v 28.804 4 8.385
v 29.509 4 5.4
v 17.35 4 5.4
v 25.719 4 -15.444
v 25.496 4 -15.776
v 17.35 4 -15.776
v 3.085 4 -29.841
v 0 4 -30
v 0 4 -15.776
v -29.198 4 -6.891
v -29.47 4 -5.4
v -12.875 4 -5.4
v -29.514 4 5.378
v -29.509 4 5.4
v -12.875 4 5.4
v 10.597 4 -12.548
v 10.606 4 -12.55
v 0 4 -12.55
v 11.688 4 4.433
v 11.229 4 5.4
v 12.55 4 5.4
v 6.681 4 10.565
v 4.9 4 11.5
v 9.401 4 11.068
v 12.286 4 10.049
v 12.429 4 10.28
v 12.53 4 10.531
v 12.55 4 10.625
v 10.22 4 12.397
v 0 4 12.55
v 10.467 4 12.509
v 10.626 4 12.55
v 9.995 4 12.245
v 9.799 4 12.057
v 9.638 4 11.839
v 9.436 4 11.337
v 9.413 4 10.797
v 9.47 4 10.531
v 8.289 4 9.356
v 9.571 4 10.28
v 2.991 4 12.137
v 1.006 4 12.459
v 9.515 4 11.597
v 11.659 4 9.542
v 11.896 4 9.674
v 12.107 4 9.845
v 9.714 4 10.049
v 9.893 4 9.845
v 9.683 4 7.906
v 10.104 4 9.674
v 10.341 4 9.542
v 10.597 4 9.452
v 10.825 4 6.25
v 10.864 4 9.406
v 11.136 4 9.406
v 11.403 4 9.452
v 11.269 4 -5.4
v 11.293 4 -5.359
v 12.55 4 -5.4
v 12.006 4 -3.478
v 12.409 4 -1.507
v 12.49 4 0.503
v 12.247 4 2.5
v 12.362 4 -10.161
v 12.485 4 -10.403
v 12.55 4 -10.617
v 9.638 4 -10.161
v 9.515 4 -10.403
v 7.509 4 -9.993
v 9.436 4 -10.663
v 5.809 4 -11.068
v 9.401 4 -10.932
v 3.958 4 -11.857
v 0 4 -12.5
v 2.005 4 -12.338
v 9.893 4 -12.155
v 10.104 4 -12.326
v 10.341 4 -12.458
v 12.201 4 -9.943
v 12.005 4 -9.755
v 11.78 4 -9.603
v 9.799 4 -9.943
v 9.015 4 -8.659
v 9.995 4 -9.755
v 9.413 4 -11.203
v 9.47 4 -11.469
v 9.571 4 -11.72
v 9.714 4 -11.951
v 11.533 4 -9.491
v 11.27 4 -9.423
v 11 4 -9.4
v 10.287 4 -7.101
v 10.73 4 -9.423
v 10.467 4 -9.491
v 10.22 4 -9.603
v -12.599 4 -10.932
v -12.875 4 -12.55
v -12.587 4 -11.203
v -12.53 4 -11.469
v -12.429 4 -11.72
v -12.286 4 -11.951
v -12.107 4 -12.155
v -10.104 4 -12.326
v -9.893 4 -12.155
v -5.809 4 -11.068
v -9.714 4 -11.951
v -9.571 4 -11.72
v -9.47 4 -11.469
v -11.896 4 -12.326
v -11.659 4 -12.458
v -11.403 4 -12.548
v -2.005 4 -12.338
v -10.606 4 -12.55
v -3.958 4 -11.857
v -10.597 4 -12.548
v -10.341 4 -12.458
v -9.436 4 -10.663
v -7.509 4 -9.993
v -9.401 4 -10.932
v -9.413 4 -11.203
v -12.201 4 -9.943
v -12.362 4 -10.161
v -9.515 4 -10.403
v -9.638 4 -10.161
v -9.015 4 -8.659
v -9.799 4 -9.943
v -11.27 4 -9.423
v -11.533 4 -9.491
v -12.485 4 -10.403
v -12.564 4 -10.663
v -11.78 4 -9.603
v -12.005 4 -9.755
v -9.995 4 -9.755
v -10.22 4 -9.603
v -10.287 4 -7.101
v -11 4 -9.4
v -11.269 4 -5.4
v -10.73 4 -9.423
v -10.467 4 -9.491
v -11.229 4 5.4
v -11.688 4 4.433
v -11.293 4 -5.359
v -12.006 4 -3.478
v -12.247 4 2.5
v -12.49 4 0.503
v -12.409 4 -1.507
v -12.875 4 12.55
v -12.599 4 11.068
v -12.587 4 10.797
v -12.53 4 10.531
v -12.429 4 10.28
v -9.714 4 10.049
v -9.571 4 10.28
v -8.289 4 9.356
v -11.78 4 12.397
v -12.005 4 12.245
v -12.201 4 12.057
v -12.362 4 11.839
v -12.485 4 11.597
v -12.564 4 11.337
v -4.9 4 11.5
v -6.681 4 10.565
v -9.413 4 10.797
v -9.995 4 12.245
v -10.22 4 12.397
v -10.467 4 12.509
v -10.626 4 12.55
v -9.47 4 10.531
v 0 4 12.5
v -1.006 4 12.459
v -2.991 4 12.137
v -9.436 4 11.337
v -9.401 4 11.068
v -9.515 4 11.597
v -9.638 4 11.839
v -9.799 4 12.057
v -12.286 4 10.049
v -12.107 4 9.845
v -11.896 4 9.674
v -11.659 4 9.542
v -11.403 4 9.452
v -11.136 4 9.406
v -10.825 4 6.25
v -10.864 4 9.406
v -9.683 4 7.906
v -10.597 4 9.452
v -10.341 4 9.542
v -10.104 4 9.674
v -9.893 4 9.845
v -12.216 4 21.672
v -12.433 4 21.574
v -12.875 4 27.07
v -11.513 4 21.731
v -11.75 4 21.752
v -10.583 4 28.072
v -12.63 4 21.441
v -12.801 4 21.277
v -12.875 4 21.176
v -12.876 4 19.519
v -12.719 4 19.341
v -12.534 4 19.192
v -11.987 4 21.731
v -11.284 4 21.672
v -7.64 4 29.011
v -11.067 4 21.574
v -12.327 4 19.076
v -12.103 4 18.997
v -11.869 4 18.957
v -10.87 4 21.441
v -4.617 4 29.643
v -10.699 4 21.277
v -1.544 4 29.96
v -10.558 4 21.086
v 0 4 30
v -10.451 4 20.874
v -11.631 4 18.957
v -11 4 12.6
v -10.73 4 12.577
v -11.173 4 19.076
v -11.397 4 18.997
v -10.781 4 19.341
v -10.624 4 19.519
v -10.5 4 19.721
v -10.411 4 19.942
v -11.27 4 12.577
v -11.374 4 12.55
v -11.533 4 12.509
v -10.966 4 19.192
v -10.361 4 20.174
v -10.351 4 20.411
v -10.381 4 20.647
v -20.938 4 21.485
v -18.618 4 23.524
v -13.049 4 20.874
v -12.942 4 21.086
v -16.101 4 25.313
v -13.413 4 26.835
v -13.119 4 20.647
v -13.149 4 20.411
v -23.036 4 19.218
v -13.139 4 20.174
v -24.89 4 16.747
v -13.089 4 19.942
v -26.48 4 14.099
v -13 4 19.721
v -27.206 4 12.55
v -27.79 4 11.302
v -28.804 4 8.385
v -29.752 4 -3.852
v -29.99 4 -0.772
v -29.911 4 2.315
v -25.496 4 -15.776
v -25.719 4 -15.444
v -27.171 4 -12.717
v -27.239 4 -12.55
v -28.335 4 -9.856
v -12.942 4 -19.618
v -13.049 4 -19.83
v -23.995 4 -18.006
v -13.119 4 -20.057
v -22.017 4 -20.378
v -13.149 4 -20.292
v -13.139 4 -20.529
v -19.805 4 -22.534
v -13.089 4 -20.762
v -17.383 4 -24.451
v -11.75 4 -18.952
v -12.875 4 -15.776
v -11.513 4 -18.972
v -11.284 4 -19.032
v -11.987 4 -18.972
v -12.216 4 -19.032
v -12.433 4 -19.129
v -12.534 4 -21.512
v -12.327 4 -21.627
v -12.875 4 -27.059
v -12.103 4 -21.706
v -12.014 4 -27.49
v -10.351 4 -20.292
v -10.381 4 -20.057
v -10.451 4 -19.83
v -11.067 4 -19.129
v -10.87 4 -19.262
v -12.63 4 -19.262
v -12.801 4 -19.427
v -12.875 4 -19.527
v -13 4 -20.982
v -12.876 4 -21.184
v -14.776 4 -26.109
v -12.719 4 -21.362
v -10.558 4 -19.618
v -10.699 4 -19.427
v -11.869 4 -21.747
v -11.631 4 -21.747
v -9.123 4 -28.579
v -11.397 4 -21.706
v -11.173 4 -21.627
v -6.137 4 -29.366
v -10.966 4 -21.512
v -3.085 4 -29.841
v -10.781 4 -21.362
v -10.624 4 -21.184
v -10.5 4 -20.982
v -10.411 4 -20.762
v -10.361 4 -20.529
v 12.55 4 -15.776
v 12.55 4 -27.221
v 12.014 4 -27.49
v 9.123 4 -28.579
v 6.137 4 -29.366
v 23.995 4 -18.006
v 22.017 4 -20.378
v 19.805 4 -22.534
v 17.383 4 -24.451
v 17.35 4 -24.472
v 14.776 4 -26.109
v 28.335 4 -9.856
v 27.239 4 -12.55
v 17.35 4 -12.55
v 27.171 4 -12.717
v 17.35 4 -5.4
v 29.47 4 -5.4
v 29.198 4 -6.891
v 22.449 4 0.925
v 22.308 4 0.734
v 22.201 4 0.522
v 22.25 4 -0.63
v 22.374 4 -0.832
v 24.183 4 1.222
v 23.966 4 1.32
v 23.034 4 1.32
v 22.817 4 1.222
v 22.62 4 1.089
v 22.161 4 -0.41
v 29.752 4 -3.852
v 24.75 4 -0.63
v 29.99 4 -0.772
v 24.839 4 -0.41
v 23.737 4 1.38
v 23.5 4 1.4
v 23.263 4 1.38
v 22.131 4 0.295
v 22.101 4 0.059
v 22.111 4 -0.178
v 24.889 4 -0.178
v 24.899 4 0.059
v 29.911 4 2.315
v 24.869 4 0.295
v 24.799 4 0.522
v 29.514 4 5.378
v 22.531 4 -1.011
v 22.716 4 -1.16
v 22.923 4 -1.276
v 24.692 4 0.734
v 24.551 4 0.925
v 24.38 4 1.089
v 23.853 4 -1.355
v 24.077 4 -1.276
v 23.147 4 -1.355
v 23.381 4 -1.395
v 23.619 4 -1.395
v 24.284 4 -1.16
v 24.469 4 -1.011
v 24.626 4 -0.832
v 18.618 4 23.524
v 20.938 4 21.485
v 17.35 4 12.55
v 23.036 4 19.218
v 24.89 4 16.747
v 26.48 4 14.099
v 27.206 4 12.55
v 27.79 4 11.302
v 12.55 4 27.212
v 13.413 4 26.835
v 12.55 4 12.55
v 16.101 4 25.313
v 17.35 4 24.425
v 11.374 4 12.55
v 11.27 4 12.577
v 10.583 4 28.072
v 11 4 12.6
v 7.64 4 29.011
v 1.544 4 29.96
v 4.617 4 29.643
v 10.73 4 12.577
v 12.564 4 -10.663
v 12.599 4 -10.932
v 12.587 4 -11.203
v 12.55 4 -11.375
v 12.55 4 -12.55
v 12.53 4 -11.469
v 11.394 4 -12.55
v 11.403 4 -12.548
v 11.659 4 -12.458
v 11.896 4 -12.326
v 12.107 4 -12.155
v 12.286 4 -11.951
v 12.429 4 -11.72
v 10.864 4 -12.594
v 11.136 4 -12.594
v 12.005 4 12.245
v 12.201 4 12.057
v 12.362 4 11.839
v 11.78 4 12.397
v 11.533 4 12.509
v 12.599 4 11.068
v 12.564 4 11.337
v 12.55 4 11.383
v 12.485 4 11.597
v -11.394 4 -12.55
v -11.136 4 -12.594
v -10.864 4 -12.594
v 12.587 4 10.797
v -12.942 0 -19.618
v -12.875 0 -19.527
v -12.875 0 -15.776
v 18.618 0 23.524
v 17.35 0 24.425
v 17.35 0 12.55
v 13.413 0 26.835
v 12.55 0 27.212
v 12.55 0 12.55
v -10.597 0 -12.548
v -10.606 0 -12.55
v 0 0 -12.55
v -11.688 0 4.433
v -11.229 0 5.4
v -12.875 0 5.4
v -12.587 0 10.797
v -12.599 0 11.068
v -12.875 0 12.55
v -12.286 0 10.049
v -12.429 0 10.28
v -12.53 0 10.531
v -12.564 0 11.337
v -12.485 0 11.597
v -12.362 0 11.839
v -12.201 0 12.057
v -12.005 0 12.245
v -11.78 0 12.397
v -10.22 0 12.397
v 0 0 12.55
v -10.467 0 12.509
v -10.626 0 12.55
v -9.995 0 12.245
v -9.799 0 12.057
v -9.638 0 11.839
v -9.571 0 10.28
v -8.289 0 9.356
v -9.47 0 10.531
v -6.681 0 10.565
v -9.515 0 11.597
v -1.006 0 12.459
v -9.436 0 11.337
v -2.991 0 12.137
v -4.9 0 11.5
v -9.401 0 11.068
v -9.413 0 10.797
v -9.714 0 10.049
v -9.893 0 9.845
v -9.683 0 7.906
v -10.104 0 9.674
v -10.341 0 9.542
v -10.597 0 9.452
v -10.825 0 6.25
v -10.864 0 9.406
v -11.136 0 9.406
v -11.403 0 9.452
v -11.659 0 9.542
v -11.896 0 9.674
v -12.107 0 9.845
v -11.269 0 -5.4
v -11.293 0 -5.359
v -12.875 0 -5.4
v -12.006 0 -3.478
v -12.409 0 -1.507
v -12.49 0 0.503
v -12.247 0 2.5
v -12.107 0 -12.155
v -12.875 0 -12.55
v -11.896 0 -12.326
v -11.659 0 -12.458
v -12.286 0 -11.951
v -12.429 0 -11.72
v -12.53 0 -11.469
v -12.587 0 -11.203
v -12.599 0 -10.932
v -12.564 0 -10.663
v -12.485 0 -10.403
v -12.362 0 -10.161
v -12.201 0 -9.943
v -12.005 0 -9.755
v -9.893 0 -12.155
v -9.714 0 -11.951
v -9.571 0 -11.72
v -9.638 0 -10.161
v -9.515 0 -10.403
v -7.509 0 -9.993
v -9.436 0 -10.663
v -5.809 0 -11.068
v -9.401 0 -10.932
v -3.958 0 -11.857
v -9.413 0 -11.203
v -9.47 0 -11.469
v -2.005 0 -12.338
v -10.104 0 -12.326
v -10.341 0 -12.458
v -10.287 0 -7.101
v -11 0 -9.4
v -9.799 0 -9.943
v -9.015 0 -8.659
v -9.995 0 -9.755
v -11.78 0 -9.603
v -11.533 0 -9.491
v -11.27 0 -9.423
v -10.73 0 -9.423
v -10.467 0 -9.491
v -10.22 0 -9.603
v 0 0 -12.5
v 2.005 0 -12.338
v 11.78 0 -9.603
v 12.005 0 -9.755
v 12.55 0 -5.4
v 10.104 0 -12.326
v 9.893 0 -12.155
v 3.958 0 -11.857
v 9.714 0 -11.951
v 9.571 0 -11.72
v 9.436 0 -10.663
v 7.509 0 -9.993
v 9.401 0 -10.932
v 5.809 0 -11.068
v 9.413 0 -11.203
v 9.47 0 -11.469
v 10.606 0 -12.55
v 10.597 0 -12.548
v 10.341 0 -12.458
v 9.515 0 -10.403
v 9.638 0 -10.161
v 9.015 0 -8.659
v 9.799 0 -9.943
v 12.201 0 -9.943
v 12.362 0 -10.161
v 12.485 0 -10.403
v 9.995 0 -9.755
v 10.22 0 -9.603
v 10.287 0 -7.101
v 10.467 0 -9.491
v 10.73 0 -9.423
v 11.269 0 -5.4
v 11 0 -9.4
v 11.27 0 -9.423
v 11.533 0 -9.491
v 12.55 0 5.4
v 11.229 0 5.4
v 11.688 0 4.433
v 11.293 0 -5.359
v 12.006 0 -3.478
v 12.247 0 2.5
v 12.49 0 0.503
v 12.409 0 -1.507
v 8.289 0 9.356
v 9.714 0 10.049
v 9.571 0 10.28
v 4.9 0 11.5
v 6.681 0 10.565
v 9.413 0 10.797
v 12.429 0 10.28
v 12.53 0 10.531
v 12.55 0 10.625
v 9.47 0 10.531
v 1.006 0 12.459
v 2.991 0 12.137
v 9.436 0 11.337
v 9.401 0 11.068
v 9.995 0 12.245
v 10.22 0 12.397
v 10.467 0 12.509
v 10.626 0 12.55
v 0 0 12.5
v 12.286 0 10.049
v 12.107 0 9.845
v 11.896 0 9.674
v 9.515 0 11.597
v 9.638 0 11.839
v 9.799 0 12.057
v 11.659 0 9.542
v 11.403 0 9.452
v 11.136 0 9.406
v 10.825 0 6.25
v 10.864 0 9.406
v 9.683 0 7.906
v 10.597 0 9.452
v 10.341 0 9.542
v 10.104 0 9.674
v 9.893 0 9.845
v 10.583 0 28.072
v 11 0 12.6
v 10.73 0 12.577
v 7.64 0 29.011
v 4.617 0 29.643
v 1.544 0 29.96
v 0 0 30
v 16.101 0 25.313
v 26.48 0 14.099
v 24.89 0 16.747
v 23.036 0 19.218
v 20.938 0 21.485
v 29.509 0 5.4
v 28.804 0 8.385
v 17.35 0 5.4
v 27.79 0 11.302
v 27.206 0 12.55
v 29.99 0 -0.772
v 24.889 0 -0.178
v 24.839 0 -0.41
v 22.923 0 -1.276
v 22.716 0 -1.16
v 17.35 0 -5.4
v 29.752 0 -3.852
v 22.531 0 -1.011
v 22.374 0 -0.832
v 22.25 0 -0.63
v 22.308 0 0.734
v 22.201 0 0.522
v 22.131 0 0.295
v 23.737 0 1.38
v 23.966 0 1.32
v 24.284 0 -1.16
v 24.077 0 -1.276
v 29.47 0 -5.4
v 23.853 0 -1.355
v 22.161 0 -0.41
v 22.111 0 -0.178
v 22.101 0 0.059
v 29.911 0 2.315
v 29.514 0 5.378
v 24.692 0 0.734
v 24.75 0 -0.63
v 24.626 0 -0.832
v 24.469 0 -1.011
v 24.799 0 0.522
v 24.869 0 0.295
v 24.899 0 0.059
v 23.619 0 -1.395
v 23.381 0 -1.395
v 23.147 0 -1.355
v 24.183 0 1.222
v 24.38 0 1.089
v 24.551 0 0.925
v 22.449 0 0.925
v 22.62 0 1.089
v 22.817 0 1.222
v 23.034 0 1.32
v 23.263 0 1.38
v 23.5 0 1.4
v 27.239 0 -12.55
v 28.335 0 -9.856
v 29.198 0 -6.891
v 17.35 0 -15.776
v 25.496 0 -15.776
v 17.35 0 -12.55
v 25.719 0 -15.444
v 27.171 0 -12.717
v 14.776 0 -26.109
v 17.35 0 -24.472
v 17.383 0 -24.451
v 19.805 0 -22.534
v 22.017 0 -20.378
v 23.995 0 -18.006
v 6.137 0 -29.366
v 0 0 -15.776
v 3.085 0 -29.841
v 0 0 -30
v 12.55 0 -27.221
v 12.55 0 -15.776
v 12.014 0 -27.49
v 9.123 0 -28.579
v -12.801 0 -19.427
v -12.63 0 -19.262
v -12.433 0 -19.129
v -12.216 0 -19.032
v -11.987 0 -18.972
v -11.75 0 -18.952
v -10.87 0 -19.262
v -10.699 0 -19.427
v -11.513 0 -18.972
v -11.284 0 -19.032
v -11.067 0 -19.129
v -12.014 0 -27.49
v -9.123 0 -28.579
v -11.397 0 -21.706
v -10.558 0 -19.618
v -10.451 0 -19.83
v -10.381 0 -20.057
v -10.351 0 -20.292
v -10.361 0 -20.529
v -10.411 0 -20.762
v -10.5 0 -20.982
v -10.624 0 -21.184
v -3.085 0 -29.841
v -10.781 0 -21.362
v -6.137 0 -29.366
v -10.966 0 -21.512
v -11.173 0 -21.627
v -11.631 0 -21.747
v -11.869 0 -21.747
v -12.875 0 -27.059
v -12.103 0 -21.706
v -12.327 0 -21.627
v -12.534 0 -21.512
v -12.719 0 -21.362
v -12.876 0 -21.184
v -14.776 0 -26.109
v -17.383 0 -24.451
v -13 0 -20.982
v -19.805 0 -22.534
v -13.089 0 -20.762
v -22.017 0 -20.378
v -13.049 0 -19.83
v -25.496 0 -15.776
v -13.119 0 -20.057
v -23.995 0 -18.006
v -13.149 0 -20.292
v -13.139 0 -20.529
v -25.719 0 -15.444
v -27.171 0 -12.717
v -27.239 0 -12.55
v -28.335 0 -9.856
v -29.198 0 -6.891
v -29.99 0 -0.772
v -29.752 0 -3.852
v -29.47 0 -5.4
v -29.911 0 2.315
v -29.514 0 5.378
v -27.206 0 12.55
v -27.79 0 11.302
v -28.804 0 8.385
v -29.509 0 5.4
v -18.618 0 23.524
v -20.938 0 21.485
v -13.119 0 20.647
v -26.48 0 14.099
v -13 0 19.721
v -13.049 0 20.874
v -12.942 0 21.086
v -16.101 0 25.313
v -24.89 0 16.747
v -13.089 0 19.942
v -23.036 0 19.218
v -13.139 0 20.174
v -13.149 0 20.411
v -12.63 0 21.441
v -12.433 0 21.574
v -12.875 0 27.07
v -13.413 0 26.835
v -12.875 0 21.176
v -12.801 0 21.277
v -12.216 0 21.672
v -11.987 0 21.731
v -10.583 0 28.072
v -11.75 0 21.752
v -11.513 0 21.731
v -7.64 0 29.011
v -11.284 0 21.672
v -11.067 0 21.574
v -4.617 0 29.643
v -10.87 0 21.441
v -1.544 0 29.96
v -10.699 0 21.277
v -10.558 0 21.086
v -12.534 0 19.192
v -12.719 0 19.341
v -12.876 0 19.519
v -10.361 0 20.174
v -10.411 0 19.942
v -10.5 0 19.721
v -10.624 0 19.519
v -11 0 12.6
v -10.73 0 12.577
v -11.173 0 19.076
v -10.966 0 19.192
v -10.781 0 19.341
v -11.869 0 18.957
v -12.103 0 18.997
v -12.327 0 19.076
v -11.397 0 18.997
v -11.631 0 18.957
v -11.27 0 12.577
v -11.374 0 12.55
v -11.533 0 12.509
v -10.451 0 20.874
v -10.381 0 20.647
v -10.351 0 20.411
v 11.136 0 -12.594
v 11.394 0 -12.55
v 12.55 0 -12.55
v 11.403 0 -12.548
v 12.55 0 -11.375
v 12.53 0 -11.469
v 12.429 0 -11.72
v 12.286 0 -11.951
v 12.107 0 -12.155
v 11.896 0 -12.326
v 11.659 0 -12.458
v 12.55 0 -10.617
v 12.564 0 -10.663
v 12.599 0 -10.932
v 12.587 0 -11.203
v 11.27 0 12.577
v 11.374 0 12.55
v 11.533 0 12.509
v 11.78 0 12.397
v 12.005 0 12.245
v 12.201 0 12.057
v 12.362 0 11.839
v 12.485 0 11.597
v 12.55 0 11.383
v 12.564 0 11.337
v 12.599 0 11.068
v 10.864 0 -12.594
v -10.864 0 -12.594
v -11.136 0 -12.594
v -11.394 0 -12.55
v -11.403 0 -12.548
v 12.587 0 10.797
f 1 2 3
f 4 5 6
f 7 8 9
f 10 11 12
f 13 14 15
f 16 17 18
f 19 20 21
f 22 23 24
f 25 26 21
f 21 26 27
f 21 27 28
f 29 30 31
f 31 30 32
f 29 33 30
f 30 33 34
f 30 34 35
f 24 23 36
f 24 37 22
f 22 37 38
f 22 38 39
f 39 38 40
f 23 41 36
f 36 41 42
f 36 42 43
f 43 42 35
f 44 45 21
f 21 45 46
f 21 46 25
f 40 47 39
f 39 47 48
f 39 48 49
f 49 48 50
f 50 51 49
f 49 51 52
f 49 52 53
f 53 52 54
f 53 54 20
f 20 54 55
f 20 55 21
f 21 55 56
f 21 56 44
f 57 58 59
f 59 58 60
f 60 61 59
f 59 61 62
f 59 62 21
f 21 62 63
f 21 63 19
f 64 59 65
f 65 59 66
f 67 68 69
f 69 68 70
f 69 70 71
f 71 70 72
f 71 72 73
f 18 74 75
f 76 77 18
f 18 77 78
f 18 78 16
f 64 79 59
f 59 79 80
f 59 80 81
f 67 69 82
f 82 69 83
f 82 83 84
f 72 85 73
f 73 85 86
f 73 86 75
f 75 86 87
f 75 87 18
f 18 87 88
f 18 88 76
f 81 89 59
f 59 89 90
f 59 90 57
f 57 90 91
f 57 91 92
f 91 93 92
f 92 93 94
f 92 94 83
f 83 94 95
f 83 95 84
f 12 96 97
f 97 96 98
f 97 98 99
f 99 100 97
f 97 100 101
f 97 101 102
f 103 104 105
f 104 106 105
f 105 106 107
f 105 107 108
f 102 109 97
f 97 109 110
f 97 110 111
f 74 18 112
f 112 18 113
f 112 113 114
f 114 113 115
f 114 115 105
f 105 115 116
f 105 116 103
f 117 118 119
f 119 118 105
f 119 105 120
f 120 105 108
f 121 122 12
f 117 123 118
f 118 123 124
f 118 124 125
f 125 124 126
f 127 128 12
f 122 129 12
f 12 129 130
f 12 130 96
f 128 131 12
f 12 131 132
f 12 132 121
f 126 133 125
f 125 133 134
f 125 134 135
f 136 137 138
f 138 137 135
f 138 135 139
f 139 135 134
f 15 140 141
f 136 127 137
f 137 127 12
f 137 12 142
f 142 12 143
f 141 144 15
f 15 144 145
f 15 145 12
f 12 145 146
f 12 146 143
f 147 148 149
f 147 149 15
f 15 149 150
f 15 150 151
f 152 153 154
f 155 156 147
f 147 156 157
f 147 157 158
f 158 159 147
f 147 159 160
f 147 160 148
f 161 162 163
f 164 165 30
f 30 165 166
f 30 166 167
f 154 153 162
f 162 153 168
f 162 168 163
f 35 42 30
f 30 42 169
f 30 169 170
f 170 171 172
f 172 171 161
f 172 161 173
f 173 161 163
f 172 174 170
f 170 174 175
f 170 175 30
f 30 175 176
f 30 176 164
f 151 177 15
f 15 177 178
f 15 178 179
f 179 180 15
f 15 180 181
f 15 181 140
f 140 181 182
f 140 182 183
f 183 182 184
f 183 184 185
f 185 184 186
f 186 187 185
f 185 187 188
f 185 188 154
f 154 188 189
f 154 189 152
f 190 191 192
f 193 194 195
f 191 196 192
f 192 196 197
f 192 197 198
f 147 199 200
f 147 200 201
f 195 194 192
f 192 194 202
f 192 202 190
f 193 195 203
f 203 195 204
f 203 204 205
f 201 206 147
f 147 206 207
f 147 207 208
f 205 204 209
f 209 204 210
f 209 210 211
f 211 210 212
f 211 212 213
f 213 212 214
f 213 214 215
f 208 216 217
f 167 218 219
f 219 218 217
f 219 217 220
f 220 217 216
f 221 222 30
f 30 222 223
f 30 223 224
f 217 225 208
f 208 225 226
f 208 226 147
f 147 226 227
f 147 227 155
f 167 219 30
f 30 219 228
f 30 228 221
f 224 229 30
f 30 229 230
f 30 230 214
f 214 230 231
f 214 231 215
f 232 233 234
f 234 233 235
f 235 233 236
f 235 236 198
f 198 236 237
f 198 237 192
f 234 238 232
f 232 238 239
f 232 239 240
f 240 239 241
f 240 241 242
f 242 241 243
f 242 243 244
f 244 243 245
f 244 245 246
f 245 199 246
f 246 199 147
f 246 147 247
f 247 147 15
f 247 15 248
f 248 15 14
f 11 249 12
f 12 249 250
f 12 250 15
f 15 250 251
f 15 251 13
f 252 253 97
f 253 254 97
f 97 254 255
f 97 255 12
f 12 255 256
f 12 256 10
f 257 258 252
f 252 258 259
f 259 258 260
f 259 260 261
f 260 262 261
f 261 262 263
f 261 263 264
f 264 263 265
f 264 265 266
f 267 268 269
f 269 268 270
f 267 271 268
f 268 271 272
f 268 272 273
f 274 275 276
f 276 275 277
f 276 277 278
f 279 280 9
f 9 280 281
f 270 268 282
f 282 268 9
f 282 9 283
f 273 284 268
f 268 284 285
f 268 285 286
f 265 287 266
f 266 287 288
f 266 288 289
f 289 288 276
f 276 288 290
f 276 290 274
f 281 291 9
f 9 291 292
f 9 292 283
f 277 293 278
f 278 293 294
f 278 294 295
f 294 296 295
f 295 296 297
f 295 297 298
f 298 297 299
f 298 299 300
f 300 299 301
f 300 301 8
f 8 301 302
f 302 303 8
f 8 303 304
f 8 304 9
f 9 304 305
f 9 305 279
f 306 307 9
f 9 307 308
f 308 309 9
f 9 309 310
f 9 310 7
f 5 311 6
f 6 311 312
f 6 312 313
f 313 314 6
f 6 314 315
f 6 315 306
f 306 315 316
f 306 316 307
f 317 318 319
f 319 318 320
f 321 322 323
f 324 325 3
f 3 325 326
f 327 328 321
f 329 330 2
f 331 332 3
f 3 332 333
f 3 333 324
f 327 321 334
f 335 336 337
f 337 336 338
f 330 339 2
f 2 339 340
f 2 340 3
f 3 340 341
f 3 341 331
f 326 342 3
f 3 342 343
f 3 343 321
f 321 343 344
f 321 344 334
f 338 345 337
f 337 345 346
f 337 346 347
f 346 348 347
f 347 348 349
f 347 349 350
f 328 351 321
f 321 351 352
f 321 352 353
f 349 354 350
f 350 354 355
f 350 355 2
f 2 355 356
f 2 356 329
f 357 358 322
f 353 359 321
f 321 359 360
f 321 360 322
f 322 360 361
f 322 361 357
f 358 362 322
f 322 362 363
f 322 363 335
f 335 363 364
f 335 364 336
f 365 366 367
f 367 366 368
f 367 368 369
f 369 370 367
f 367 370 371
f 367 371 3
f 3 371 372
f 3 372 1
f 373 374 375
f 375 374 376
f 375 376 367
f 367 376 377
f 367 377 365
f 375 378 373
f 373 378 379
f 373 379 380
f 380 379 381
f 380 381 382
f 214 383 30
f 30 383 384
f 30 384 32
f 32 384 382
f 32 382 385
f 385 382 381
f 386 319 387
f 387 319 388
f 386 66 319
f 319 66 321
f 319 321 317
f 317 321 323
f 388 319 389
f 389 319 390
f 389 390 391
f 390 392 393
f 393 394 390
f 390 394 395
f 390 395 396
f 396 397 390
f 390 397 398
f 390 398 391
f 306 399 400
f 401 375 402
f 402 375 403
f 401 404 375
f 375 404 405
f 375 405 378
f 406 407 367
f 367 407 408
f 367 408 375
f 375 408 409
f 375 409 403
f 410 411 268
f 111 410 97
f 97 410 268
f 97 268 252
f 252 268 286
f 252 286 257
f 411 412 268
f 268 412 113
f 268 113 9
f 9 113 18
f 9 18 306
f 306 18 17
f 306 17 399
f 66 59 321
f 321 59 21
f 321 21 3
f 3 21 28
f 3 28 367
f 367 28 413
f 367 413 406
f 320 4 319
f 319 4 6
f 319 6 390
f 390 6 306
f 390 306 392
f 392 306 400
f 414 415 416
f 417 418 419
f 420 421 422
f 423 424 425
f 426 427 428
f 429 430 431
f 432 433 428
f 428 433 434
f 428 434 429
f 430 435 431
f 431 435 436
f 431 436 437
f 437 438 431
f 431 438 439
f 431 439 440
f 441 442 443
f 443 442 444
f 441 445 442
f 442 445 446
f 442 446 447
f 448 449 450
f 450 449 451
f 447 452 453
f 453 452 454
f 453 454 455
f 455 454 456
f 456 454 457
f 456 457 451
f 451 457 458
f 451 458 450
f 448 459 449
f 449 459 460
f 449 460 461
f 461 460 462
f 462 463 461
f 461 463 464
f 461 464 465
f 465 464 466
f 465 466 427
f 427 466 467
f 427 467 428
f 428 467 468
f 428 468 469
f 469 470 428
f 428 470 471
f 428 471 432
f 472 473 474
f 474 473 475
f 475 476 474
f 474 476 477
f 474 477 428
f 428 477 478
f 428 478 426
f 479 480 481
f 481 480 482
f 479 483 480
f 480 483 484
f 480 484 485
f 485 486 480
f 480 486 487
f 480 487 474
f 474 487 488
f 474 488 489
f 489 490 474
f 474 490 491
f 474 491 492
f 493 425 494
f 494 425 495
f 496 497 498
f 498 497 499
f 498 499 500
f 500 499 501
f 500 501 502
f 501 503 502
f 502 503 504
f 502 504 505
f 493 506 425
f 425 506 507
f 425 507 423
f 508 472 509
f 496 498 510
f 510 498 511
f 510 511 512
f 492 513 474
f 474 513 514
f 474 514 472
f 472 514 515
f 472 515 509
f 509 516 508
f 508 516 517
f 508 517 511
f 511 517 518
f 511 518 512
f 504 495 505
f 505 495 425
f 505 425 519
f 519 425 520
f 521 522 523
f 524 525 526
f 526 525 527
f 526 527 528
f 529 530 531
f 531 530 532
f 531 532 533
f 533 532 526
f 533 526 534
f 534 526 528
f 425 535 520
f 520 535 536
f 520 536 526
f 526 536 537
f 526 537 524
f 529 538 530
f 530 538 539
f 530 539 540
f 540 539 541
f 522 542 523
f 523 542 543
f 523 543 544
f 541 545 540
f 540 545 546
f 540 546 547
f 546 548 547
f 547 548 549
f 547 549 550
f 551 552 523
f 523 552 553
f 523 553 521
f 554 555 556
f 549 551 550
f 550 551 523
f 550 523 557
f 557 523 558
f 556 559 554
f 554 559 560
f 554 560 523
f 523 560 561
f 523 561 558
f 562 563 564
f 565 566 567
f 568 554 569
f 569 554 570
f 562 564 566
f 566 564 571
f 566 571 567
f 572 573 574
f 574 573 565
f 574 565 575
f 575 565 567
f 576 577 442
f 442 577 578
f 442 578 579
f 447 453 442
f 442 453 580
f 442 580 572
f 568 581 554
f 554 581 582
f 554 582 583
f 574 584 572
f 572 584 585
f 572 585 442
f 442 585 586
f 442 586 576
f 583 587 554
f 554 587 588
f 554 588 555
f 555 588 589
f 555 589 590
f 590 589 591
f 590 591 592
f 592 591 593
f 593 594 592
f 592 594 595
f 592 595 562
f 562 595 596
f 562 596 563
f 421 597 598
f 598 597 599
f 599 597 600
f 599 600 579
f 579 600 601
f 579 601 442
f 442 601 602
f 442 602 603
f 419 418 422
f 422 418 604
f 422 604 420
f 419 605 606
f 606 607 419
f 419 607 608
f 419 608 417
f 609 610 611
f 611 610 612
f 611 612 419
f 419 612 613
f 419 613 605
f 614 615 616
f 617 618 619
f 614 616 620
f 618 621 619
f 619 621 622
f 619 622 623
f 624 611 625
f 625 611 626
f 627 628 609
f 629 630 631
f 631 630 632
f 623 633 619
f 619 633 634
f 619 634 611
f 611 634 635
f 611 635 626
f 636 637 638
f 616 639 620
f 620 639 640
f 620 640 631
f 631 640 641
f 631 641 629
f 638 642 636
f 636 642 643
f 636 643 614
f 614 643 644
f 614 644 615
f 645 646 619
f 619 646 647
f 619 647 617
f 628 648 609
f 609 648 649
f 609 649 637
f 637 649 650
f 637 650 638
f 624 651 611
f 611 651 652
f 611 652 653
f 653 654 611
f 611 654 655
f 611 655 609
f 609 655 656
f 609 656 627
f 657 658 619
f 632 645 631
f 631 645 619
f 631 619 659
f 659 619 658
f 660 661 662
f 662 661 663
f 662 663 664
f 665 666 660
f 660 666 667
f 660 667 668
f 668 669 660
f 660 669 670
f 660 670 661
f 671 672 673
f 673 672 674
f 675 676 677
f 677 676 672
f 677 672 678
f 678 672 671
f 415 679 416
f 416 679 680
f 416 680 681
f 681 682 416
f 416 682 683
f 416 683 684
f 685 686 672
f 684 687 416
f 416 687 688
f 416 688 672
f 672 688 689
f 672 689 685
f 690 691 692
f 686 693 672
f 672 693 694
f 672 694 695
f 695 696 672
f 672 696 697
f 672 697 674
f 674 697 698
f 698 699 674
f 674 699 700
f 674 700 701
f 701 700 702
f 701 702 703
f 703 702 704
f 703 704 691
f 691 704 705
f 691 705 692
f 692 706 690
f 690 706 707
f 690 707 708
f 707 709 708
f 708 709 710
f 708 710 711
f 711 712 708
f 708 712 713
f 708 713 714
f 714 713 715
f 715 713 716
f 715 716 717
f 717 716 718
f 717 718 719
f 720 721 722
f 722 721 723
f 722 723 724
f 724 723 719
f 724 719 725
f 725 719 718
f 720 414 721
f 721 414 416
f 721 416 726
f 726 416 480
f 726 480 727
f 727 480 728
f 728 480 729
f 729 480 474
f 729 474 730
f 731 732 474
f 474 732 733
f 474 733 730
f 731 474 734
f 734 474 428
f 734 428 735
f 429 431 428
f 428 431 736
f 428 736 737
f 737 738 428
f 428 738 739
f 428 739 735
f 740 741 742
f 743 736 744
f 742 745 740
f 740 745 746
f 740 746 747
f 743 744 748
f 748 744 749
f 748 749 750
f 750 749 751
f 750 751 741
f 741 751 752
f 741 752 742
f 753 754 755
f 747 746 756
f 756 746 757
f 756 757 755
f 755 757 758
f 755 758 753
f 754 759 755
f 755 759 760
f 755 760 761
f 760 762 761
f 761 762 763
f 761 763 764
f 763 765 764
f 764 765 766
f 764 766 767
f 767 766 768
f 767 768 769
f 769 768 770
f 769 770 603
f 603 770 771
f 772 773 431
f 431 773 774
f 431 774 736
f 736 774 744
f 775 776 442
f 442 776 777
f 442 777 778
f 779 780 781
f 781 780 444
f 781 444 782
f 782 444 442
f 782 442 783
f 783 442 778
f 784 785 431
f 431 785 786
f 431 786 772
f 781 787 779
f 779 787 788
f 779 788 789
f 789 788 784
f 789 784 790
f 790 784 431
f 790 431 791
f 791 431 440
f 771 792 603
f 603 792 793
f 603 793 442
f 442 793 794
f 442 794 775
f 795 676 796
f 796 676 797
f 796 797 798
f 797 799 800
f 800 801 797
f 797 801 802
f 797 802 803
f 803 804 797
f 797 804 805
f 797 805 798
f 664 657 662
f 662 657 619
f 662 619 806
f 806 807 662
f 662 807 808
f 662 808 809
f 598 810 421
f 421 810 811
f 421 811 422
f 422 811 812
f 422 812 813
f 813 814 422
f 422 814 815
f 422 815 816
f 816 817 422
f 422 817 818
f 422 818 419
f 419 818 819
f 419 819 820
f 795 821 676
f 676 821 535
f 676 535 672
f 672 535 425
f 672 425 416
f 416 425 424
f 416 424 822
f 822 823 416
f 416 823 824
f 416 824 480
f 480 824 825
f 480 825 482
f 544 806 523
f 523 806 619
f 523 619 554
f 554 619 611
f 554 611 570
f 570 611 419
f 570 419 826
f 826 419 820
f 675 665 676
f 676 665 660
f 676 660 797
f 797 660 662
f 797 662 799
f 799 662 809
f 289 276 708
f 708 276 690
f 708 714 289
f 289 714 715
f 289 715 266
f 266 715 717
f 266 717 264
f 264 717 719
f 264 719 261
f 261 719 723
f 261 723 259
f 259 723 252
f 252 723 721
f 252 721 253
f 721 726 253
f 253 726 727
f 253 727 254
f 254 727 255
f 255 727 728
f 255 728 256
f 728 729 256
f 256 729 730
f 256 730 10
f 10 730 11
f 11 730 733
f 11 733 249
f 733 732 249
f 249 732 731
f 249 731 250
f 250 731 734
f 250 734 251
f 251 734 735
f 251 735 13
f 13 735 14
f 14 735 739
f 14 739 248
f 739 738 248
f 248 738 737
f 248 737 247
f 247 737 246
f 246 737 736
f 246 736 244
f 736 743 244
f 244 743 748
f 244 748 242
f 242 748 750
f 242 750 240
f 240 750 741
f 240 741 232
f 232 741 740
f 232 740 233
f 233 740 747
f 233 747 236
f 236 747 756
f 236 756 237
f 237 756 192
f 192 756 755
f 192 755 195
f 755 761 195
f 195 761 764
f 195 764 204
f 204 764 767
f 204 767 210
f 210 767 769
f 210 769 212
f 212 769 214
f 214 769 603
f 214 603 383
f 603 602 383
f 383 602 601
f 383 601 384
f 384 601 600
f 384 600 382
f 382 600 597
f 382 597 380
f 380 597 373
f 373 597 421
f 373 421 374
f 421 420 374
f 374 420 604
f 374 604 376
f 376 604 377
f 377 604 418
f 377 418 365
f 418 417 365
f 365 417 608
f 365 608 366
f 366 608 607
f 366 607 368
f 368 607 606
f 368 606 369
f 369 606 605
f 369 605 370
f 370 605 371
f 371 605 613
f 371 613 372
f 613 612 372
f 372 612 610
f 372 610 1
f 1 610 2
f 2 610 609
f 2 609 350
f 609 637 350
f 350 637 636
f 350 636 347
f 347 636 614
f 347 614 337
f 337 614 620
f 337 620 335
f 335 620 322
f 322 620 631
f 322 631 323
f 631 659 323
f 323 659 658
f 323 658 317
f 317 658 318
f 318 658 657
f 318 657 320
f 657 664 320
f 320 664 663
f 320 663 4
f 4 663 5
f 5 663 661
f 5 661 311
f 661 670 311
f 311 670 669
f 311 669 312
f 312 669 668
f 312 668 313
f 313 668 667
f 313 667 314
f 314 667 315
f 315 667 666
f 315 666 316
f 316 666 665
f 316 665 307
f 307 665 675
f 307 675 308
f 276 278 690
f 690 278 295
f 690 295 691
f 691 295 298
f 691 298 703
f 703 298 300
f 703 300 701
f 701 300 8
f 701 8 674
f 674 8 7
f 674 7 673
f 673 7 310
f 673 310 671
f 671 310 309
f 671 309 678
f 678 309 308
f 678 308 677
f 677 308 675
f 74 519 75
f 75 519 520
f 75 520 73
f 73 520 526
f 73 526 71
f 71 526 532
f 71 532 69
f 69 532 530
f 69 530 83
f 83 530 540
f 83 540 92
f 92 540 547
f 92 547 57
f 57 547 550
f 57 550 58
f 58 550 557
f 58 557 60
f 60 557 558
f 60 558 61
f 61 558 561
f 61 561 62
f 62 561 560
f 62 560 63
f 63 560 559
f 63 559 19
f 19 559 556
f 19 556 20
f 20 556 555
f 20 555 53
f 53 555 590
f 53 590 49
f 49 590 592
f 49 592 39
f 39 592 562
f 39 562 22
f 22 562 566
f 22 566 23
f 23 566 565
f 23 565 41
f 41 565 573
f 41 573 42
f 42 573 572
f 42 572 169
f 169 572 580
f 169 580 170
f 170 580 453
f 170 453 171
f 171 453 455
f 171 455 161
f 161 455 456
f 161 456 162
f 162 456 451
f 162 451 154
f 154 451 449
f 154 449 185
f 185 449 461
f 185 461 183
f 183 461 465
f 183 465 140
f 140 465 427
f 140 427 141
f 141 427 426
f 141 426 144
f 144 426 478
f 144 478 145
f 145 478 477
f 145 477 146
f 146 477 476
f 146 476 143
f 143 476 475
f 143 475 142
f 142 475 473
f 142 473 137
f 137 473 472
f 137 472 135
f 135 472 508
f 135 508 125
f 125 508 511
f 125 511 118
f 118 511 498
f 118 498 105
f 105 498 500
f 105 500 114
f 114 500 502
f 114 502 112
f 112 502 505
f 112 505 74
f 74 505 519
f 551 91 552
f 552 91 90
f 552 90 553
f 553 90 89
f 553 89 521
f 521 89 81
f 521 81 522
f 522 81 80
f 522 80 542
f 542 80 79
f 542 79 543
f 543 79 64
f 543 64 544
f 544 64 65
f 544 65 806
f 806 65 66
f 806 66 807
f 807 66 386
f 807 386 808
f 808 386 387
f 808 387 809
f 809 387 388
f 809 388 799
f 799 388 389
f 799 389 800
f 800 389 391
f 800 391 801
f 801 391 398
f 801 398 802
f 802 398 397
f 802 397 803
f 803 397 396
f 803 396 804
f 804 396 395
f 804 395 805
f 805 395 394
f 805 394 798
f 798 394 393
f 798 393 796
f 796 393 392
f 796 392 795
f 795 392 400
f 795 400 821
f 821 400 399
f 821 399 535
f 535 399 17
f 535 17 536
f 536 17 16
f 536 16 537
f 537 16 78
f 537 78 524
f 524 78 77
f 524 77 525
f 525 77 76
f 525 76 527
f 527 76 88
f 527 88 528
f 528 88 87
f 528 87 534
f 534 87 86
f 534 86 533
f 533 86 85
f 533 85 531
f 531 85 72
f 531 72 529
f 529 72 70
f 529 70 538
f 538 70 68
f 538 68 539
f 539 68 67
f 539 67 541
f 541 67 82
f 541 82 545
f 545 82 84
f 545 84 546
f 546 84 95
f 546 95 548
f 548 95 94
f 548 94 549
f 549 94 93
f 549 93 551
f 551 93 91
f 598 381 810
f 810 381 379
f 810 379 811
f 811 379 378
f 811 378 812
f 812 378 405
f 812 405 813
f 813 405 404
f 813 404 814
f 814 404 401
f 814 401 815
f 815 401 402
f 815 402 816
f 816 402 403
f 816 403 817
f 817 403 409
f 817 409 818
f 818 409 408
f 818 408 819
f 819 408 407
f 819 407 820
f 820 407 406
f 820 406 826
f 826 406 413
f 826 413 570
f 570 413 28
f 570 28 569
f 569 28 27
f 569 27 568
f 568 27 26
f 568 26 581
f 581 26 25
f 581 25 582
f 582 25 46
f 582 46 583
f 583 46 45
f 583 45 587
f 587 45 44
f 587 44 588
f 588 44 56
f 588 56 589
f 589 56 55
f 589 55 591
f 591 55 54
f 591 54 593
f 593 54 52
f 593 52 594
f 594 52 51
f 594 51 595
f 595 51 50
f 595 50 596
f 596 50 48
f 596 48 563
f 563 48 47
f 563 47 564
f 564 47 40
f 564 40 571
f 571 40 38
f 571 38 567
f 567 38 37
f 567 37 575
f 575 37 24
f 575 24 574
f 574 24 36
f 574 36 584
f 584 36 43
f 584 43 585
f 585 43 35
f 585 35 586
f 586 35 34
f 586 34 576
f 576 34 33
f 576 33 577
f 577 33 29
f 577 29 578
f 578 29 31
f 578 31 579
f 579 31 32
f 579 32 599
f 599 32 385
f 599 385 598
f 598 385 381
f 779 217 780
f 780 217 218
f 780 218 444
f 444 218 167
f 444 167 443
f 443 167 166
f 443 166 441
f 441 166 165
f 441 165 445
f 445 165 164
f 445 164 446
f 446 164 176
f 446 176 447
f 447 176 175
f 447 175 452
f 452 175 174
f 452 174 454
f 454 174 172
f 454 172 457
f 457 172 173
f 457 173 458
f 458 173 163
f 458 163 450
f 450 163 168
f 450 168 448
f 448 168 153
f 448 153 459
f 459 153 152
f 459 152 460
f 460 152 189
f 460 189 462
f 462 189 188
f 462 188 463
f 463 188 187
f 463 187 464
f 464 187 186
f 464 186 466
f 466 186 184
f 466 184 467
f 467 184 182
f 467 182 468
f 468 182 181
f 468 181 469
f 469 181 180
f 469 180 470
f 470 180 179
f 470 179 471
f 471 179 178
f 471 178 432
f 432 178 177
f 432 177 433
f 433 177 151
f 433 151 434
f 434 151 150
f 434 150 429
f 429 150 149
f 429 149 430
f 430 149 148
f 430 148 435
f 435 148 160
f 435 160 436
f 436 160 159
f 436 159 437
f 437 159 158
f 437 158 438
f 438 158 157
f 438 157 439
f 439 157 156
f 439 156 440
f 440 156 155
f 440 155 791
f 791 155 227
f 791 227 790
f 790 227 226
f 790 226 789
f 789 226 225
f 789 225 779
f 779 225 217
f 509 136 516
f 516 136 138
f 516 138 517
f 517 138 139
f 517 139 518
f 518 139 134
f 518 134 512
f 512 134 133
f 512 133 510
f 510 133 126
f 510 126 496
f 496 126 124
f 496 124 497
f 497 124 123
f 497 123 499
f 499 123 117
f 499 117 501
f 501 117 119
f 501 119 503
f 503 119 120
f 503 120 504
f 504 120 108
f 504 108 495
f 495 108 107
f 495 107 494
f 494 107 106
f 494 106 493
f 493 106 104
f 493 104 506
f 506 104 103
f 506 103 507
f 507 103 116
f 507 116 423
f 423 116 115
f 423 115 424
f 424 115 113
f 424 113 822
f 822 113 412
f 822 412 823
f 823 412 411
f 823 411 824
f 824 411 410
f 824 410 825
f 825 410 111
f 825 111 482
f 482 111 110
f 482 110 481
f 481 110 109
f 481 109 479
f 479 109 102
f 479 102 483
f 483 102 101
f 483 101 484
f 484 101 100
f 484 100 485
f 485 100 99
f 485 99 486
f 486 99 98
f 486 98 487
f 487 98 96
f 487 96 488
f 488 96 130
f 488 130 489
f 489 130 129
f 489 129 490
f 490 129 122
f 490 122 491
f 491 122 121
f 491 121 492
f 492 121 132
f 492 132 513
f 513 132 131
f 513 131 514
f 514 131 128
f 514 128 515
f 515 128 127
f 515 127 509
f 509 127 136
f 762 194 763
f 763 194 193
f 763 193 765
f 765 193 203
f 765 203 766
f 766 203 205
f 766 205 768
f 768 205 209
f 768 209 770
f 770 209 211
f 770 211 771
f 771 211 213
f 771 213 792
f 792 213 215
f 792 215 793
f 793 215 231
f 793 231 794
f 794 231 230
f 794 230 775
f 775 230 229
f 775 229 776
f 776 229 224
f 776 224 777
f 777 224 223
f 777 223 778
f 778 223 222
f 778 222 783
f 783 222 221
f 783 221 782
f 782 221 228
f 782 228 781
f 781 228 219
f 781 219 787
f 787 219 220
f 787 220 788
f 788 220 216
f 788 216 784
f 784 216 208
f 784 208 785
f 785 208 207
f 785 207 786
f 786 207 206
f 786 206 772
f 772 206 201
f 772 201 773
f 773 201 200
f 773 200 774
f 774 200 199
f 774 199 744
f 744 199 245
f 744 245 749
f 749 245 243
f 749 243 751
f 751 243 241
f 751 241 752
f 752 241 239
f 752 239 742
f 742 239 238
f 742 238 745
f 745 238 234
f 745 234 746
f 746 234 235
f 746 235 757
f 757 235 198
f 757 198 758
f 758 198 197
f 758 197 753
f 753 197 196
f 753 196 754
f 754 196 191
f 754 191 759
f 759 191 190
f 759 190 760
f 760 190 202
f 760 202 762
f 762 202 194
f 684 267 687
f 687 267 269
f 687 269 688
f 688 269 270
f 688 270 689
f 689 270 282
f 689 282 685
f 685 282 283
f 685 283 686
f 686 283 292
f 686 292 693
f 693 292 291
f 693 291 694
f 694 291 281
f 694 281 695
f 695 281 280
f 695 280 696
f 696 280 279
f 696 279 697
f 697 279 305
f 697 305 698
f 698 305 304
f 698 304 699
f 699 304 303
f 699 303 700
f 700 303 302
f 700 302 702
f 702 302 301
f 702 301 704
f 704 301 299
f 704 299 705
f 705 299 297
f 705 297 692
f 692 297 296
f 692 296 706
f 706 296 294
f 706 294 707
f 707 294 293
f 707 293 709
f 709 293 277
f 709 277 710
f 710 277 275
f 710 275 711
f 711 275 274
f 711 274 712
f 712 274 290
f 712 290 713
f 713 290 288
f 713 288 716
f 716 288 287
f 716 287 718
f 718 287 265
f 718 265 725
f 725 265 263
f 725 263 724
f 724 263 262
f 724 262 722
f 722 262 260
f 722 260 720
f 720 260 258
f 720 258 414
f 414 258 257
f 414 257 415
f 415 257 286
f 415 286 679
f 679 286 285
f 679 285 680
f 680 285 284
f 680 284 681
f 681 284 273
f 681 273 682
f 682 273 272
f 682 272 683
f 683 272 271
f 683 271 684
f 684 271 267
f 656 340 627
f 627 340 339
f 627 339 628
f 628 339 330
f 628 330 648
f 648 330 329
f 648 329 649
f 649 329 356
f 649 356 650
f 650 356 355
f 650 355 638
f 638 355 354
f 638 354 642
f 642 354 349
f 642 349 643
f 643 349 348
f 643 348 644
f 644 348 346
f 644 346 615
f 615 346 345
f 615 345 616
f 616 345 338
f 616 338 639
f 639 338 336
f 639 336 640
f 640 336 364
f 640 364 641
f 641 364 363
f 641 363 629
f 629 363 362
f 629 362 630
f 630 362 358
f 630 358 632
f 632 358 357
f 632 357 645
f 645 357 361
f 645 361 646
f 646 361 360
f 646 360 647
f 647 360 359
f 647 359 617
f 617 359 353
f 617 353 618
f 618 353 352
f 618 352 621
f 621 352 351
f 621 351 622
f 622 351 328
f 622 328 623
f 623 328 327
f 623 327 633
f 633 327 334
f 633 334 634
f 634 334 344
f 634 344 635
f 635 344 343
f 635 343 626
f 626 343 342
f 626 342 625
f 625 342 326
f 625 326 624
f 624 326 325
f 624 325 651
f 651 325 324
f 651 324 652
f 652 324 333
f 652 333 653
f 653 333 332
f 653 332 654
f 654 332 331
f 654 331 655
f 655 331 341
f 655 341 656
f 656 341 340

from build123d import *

# Parameters (mm, degrees)
SKETCH_1_R          = 30
SKETCH_1_R_2        = 12.5
EXTRUDE_1_DEPTH     = 4
SKETCH_2_R          = 1.6
CUT_EXTRUDE_1_DEPTH = 4
SKETCH_3_R          = 1.4
CUT_EXTRUDE_2_DEPTH = 10


with BuildPart() as part:
    # 草图1 → 凸台-拉伸1 (new body)
    with BuildSketch(Plane(origin=(0, 0, 0), x_dir=(1, 0, 0), z_dir=(0, 1, 0))):
        with Locations(Location((0, 0, 0), (0, 0, 270))):
            Circle(SKETCH_1_R)
        with Locations(Location((0, 0, 0), (0, 0, 270))):
            Circle(SKETCH_1_R_2, mode=Mode.SUBTRACT)
    extrude(amount=EXTRUDE_1_DEPTH)

    # 草图2 → 切除-拉伸1 (cut)
    with BuildSketch(Plane(origin=(0, 4, 0), x_dir=(1, 0, 0), z_dir=(0, 1, 0))):
        with Locations(Location((11, 11, 0), (0, 0, 270))):
            Circle(SKETCH_2_R)
        with Locations(Location((11, -11, 0), (0, 0, 270))):
            Circle(SKETCH_2_R)
        with Locations(Location((-11, -11, 0), (0, 0, 270))):
            Circle(SKETCH_2_R)
        with Locations(Location((-11, 11, 0), (0, 0, 270))):
            Circle(SKETCH_2_R)
    extrude(amount=-CUT_EXTRUDE_1_DEPTH, mode=Mode.SUBTRACT)

    # 草图3 → 切除-拉伸2 (cut)
    with BuildSketch(Plane(origin=(0, 4, 0), x_dir=(1, 0, 0), z_dir=(0, 1, 0))):
        with Locations(Location((23.5, 0, 0), (0, 0, 270))):
            Circle(SKETCH_3_R)
        with Locations(Location((-11.75, 20.351596989, 0), (0, 0, 270))):
            Circle(SKETCH_3_R)
        with Locations(Location((-11.75, -20.351596989, 0), (0, 0, 270))):
            Circle(SKETCH_3_R)
    extrude(amount=-CUT_EXTRUDE_2_DEPTH, mode=Mode.SUBTRACT)


solid = part.part
